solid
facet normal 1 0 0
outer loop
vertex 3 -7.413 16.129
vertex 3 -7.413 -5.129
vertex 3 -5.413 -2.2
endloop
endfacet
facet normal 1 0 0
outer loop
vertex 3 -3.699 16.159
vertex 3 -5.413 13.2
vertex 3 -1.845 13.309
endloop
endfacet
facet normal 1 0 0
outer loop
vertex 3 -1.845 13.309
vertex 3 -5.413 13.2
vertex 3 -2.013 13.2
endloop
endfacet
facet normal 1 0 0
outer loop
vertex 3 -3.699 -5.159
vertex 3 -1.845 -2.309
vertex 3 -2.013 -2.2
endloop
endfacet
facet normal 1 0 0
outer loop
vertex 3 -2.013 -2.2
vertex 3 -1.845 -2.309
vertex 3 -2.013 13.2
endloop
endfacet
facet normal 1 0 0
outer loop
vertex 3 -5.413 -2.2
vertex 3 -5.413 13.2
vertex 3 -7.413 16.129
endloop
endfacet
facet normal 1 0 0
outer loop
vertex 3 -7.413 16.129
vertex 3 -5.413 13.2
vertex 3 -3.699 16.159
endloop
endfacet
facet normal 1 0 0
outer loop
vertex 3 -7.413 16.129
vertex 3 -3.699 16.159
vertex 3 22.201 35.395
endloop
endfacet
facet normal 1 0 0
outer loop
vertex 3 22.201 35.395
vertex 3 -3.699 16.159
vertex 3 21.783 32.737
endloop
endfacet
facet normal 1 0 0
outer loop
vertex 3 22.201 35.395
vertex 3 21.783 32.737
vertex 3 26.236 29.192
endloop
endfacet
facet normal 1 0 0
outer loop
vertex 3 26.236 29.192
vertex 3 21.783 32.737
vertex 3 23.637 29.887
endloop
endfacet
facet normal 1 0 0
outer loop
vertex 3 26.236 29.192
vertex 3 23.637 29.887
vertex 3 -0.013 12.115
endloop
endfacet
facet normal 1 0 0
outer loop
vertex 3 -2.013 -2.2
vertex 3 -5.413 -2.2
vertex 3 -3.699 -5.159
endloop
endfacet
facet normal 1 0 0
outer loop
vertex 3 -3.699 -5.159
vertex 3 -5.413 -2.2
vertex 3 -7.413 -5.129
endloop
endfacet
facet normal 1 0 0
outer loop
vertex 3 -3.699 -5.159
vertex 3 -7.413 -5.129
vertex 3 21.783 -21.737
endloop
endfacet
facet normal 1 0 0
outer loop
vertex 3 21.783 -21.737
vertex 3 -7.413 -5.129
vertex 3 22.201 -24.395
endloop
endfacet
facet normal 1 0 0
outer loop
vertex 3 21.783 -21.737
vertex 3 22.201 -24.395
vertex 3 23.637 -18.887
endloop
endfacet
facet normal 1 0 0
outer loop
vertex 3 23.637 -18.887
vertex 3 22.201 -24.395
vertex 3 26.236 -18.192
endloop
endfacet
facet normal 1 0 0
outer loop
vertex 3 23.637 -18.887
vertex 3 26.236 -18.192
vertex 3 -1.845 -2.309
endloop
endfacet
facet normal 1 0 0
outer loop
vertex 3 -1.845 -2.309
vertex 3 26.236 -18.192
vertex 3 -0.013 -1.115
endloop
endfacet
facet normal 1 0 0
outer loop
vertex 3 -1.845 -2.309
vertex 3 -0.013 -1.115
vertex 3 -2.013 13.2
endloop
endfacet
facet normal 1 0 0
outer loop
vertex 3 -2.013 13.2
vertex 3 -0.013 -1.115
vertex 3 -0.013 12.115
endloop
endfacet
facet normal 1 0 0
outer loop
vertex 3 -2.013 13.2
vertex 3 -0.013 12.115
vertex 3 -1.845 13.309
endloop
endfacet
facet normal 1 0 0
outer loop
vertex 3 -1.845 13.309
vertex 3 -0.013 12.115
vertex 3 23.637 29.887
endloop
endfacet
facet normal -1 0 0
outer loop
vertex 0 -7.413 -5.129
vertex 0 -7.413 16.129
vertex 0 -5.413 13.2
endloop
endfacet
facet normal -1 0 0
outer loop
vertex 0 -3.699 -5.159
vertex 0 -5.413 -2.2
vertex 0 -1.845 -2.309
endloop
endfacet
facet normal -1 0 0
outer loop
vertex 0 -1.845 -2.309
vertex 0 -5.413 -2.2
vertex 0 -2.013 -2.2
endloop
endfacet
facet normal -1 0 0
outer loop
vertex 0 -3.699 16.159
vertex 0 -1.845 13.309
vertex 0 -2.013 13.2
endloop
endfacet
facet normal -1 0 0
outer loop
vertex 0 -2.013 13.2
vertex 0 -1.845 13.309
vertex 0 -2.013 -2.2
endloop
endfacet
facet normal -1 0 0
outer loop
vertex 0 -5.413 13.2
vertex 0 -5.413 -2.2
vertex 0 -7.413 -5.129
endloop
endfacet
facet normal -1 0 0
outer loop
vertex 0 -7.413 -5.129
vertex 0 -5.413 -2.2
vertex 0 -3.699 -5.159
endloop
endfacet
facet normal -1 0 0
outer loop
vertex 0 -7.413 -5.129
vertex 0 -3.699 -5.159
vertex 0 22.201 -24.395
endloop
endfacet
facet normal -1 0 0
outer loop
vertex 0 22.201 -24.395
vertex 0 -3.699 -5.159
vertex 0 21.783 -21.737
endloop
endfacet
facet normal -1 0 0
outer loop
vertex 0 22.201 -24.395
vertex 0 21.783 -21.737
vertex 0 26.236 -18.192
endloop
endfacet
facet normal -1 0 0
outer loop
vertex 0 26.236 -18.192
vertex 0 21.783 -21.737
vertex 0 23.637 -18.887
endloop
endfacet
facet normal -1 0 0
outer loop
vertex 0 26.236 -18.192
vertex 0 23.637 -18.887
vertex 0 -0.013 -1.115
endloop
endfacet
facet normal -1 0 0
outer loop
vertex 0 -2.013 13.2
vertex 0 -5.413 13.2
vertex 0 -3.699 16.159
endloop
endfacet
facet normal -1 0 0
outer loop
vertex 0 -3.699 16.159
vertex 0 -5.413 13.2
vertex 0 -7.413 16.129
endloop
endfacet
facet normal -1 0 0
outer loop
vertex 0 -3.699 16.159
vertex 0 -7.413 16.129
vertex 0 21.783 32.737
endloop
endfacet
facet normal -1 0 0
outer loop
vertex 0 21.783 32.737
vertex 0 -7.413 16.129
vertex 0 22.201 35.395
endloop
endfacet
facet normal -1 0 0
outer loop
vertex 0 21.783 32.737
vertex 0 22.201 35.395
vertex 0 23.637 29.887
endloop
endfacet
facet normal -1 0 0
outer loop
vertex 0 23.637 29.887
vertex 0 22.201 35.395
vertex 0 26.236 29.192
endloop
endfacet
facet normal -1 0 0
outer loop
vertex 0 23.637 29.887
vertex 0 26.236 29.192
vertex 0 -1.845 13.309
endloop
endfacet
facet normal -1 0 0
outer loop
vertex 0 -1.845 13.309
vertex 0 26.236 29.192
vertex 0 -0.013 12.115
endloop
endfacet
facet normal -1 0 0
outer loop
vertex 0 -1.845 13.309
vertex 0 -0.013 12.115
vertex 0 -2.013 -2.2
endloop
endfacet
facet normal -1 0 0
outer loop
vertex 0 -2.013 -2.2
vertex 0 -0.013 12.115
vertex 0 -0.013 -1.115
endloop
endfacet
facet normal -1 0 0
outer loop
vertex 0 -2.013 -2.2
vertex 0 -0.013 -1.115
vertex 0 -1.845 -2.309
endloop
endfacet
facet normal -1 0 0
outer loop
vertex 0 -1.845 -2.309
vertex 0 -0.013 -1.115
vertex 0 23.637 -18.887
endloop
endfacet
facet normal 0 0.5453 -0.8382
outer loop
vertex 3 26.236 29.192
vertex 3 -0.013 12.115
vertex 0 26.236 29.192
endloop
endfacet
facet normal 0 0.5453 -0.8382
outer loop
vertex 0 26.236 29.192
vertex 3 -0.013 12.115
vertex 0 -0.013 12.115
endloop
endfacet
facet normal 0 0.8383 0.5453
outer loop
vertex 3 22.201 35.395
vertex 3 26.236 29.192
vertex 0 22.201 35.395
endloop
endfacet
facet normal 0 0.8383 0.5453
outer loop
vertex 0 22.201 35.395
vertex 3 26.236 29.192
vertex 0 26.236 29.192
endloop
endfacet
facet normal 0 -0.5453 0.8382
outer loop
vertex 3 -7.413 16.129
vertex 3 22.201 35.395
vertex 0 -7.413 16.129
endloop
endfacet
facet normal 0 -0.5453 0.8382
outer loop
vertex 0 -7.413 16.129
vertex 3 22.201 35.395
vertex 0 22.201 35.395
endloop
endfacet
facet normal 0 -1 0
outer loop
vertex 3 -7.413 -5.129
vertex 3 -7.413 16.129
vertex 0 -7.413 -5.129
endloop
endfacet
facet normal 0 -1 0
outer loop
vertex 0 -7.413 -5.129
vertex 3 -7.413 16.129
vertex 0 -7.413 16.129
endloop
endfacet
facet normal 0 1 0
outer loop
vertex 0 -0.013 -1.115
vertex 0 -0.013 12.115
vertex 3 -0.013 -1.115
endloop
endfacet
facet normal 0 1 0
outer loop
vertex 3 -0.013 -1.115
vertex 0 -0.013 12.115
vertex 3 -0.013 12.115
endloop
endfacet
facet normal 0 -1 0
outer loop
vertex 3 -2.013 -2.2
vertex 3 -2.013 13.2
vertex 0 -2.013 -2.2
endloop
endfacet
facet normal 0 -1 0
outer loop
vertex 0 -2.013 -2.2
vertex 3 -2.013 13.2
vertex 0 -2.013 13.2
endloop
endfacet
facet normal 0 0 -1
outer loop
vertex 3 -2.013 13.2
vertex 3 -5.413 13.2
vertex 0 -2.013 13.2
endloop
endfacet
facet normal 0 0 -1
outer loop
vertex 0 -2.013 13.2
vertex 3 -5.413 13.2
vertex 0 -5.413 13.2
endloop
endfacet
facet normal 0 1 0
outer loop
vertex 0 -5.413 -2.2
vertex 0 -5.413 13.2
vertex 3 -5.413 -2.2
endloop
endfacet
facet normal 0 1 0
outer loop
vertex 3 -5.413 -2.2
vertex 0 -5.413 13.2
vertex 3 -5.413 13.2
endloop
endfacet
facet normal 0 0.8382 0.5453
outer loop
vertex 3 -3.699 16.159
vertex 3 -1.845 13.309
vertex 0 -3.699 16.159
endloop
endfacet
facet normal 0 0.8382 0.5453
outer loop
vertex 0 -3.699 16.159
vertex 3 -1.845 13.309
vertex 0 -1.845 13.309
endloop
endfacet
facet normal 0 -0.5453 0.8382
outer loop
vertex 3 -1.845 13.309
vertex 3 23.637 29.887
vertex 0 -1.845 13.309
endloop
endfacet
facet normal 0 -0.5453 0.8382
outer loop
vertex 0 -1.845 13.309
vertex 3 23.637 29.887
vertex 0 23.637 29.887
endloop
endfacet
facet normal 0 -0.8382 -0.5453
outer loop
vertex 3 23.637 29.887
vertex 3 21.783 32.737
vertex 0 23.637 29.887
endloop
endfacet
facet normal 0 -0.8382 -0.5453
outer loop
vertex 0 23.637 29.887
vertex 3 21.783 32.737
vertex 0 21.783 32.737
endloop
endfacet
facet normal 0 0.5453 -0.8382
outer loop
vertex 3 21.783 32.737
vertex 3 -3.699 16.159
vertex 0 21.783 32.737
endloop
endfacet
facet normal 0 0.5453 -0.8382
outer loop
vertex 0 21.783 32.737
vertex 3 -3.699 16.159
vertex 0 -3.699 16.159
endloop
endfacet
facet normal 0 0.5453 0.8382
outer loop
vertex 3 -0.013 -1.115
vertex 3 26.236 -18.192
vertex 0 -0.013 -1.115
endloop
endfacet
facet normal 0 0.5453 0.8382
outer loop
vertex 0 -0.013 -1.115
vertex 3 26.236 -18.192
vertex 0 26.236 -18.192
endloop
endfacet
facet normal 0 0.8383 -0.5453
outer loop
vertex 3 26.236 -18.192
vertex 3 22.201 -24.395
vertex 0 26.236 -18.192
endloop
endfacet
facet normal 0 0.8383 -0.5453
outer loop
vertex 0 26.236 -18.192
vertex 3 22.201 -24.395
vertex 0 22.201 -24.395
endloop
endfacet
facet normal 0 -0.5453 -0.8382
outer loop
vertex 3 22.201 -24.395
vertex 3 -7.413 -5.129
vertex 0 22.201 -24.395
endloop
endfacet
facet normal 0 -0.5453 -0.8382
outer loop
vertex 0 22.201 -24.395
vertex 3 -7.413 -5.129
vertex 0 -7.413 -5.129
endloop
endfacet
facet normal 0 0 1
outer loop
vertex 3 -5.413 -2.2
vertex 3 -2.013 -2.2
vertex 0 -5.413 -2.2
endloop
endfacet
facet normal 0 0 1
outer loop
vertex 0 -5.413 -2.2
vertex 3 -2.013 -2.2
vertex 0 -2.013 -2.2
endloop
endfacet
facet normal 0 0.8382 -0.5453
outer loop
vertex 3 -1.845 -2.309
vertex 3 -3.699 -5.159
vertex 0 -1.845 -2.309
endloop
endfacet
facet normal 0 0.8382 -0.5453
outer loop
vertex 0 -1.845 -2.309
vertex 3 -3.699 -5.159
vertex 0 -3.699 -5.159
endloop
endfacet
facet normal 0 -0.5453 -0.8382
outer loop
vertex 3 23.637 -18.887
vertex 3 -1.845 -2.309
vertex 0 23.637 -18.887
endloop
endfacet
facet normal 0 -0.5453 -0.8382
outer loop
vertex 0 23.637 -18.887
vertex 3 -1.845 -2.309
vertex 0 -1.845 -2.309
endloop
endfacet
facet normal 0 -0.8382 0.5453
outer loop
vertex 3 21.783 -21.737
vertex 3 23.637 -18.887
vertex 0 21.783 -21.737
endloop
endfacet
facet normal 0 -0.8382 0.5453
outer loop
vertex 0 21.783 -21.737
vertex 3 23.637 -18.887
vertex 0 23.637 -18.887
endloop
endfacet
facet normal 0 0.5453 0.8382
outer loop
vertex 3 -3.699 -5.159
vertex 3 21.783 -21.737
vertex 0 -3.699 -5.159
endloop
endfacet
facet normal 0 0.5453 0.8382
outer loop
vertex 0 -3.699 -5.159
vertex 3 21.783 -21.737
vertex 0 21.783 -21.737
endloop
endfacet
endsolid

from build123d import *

# Parameters (mm, degrees)
SKETCH1_W           = 26.4
SKETCH1_H           = 3.4
BOSS_EXTRUDE1_DEPTH = 3
CUT_EXTRUDE1_DEPTH  = 3


with BuildPart() as part:
    # Sketch1 → Boss-Extrude1 (new body)
    with BuildSketch(Plane(origin=(0, 0, 0), x_dir=(0, 0, -1), z_dir=(1, 0, 0))):
        Polygon((-29.192028343, 26.236188028), (-35.394898574, 22.200794504), (-16.635771919, -6.634169813), (-16.129107702, -7.412971773), (-15.2, -7.412971773), (15.2, -7.412971773), (15.2, -0.012971773), (-12.115145296, -0.012971773), align=None)
        with Locations((0, -3.712971773)):
            Rectangle(SKETCH1_W, SKETCH1_H, mode=Mode.SUBTRACT)
        Polygon((-13.30906469, -1.845326631), (-29.886897548, 23.636734858), (-32.736864952, 21.78263513), (-16.159032093, -3.699426359), align=None, mode=Mode.SUBTRACT)
    extrude(amount=BOSS_EXTRUDE1_DEPTH)

    # Sketch2 → Cut-Extrude1 (cut)
    with BuildSketch(Plane(origin=(3, 0, 0), x_dir=(0, 0, -1), z_dir=(1, 0, 0))):
        Polygon((15.2, -0.012971773), (-5.5, -0.012971773), (-5.5, -2.012971773), (13.2, -2.012971773), (13.2, -5.412971773), (-5.5, -5.412971773), (-5.5, -7.412971773), (15.2, -7.412971773), align=None)
    extrude(amount=-CUT_EXTRUDE1_DEPTH, mode=Mode.SUBTRACT)

    # Mirror1: part across plane


with BuildPart() as part_1:
    add(part.part)
    add(part.part.mirror(Plane.XY.offset(5.5)))


solid = part_1.part
